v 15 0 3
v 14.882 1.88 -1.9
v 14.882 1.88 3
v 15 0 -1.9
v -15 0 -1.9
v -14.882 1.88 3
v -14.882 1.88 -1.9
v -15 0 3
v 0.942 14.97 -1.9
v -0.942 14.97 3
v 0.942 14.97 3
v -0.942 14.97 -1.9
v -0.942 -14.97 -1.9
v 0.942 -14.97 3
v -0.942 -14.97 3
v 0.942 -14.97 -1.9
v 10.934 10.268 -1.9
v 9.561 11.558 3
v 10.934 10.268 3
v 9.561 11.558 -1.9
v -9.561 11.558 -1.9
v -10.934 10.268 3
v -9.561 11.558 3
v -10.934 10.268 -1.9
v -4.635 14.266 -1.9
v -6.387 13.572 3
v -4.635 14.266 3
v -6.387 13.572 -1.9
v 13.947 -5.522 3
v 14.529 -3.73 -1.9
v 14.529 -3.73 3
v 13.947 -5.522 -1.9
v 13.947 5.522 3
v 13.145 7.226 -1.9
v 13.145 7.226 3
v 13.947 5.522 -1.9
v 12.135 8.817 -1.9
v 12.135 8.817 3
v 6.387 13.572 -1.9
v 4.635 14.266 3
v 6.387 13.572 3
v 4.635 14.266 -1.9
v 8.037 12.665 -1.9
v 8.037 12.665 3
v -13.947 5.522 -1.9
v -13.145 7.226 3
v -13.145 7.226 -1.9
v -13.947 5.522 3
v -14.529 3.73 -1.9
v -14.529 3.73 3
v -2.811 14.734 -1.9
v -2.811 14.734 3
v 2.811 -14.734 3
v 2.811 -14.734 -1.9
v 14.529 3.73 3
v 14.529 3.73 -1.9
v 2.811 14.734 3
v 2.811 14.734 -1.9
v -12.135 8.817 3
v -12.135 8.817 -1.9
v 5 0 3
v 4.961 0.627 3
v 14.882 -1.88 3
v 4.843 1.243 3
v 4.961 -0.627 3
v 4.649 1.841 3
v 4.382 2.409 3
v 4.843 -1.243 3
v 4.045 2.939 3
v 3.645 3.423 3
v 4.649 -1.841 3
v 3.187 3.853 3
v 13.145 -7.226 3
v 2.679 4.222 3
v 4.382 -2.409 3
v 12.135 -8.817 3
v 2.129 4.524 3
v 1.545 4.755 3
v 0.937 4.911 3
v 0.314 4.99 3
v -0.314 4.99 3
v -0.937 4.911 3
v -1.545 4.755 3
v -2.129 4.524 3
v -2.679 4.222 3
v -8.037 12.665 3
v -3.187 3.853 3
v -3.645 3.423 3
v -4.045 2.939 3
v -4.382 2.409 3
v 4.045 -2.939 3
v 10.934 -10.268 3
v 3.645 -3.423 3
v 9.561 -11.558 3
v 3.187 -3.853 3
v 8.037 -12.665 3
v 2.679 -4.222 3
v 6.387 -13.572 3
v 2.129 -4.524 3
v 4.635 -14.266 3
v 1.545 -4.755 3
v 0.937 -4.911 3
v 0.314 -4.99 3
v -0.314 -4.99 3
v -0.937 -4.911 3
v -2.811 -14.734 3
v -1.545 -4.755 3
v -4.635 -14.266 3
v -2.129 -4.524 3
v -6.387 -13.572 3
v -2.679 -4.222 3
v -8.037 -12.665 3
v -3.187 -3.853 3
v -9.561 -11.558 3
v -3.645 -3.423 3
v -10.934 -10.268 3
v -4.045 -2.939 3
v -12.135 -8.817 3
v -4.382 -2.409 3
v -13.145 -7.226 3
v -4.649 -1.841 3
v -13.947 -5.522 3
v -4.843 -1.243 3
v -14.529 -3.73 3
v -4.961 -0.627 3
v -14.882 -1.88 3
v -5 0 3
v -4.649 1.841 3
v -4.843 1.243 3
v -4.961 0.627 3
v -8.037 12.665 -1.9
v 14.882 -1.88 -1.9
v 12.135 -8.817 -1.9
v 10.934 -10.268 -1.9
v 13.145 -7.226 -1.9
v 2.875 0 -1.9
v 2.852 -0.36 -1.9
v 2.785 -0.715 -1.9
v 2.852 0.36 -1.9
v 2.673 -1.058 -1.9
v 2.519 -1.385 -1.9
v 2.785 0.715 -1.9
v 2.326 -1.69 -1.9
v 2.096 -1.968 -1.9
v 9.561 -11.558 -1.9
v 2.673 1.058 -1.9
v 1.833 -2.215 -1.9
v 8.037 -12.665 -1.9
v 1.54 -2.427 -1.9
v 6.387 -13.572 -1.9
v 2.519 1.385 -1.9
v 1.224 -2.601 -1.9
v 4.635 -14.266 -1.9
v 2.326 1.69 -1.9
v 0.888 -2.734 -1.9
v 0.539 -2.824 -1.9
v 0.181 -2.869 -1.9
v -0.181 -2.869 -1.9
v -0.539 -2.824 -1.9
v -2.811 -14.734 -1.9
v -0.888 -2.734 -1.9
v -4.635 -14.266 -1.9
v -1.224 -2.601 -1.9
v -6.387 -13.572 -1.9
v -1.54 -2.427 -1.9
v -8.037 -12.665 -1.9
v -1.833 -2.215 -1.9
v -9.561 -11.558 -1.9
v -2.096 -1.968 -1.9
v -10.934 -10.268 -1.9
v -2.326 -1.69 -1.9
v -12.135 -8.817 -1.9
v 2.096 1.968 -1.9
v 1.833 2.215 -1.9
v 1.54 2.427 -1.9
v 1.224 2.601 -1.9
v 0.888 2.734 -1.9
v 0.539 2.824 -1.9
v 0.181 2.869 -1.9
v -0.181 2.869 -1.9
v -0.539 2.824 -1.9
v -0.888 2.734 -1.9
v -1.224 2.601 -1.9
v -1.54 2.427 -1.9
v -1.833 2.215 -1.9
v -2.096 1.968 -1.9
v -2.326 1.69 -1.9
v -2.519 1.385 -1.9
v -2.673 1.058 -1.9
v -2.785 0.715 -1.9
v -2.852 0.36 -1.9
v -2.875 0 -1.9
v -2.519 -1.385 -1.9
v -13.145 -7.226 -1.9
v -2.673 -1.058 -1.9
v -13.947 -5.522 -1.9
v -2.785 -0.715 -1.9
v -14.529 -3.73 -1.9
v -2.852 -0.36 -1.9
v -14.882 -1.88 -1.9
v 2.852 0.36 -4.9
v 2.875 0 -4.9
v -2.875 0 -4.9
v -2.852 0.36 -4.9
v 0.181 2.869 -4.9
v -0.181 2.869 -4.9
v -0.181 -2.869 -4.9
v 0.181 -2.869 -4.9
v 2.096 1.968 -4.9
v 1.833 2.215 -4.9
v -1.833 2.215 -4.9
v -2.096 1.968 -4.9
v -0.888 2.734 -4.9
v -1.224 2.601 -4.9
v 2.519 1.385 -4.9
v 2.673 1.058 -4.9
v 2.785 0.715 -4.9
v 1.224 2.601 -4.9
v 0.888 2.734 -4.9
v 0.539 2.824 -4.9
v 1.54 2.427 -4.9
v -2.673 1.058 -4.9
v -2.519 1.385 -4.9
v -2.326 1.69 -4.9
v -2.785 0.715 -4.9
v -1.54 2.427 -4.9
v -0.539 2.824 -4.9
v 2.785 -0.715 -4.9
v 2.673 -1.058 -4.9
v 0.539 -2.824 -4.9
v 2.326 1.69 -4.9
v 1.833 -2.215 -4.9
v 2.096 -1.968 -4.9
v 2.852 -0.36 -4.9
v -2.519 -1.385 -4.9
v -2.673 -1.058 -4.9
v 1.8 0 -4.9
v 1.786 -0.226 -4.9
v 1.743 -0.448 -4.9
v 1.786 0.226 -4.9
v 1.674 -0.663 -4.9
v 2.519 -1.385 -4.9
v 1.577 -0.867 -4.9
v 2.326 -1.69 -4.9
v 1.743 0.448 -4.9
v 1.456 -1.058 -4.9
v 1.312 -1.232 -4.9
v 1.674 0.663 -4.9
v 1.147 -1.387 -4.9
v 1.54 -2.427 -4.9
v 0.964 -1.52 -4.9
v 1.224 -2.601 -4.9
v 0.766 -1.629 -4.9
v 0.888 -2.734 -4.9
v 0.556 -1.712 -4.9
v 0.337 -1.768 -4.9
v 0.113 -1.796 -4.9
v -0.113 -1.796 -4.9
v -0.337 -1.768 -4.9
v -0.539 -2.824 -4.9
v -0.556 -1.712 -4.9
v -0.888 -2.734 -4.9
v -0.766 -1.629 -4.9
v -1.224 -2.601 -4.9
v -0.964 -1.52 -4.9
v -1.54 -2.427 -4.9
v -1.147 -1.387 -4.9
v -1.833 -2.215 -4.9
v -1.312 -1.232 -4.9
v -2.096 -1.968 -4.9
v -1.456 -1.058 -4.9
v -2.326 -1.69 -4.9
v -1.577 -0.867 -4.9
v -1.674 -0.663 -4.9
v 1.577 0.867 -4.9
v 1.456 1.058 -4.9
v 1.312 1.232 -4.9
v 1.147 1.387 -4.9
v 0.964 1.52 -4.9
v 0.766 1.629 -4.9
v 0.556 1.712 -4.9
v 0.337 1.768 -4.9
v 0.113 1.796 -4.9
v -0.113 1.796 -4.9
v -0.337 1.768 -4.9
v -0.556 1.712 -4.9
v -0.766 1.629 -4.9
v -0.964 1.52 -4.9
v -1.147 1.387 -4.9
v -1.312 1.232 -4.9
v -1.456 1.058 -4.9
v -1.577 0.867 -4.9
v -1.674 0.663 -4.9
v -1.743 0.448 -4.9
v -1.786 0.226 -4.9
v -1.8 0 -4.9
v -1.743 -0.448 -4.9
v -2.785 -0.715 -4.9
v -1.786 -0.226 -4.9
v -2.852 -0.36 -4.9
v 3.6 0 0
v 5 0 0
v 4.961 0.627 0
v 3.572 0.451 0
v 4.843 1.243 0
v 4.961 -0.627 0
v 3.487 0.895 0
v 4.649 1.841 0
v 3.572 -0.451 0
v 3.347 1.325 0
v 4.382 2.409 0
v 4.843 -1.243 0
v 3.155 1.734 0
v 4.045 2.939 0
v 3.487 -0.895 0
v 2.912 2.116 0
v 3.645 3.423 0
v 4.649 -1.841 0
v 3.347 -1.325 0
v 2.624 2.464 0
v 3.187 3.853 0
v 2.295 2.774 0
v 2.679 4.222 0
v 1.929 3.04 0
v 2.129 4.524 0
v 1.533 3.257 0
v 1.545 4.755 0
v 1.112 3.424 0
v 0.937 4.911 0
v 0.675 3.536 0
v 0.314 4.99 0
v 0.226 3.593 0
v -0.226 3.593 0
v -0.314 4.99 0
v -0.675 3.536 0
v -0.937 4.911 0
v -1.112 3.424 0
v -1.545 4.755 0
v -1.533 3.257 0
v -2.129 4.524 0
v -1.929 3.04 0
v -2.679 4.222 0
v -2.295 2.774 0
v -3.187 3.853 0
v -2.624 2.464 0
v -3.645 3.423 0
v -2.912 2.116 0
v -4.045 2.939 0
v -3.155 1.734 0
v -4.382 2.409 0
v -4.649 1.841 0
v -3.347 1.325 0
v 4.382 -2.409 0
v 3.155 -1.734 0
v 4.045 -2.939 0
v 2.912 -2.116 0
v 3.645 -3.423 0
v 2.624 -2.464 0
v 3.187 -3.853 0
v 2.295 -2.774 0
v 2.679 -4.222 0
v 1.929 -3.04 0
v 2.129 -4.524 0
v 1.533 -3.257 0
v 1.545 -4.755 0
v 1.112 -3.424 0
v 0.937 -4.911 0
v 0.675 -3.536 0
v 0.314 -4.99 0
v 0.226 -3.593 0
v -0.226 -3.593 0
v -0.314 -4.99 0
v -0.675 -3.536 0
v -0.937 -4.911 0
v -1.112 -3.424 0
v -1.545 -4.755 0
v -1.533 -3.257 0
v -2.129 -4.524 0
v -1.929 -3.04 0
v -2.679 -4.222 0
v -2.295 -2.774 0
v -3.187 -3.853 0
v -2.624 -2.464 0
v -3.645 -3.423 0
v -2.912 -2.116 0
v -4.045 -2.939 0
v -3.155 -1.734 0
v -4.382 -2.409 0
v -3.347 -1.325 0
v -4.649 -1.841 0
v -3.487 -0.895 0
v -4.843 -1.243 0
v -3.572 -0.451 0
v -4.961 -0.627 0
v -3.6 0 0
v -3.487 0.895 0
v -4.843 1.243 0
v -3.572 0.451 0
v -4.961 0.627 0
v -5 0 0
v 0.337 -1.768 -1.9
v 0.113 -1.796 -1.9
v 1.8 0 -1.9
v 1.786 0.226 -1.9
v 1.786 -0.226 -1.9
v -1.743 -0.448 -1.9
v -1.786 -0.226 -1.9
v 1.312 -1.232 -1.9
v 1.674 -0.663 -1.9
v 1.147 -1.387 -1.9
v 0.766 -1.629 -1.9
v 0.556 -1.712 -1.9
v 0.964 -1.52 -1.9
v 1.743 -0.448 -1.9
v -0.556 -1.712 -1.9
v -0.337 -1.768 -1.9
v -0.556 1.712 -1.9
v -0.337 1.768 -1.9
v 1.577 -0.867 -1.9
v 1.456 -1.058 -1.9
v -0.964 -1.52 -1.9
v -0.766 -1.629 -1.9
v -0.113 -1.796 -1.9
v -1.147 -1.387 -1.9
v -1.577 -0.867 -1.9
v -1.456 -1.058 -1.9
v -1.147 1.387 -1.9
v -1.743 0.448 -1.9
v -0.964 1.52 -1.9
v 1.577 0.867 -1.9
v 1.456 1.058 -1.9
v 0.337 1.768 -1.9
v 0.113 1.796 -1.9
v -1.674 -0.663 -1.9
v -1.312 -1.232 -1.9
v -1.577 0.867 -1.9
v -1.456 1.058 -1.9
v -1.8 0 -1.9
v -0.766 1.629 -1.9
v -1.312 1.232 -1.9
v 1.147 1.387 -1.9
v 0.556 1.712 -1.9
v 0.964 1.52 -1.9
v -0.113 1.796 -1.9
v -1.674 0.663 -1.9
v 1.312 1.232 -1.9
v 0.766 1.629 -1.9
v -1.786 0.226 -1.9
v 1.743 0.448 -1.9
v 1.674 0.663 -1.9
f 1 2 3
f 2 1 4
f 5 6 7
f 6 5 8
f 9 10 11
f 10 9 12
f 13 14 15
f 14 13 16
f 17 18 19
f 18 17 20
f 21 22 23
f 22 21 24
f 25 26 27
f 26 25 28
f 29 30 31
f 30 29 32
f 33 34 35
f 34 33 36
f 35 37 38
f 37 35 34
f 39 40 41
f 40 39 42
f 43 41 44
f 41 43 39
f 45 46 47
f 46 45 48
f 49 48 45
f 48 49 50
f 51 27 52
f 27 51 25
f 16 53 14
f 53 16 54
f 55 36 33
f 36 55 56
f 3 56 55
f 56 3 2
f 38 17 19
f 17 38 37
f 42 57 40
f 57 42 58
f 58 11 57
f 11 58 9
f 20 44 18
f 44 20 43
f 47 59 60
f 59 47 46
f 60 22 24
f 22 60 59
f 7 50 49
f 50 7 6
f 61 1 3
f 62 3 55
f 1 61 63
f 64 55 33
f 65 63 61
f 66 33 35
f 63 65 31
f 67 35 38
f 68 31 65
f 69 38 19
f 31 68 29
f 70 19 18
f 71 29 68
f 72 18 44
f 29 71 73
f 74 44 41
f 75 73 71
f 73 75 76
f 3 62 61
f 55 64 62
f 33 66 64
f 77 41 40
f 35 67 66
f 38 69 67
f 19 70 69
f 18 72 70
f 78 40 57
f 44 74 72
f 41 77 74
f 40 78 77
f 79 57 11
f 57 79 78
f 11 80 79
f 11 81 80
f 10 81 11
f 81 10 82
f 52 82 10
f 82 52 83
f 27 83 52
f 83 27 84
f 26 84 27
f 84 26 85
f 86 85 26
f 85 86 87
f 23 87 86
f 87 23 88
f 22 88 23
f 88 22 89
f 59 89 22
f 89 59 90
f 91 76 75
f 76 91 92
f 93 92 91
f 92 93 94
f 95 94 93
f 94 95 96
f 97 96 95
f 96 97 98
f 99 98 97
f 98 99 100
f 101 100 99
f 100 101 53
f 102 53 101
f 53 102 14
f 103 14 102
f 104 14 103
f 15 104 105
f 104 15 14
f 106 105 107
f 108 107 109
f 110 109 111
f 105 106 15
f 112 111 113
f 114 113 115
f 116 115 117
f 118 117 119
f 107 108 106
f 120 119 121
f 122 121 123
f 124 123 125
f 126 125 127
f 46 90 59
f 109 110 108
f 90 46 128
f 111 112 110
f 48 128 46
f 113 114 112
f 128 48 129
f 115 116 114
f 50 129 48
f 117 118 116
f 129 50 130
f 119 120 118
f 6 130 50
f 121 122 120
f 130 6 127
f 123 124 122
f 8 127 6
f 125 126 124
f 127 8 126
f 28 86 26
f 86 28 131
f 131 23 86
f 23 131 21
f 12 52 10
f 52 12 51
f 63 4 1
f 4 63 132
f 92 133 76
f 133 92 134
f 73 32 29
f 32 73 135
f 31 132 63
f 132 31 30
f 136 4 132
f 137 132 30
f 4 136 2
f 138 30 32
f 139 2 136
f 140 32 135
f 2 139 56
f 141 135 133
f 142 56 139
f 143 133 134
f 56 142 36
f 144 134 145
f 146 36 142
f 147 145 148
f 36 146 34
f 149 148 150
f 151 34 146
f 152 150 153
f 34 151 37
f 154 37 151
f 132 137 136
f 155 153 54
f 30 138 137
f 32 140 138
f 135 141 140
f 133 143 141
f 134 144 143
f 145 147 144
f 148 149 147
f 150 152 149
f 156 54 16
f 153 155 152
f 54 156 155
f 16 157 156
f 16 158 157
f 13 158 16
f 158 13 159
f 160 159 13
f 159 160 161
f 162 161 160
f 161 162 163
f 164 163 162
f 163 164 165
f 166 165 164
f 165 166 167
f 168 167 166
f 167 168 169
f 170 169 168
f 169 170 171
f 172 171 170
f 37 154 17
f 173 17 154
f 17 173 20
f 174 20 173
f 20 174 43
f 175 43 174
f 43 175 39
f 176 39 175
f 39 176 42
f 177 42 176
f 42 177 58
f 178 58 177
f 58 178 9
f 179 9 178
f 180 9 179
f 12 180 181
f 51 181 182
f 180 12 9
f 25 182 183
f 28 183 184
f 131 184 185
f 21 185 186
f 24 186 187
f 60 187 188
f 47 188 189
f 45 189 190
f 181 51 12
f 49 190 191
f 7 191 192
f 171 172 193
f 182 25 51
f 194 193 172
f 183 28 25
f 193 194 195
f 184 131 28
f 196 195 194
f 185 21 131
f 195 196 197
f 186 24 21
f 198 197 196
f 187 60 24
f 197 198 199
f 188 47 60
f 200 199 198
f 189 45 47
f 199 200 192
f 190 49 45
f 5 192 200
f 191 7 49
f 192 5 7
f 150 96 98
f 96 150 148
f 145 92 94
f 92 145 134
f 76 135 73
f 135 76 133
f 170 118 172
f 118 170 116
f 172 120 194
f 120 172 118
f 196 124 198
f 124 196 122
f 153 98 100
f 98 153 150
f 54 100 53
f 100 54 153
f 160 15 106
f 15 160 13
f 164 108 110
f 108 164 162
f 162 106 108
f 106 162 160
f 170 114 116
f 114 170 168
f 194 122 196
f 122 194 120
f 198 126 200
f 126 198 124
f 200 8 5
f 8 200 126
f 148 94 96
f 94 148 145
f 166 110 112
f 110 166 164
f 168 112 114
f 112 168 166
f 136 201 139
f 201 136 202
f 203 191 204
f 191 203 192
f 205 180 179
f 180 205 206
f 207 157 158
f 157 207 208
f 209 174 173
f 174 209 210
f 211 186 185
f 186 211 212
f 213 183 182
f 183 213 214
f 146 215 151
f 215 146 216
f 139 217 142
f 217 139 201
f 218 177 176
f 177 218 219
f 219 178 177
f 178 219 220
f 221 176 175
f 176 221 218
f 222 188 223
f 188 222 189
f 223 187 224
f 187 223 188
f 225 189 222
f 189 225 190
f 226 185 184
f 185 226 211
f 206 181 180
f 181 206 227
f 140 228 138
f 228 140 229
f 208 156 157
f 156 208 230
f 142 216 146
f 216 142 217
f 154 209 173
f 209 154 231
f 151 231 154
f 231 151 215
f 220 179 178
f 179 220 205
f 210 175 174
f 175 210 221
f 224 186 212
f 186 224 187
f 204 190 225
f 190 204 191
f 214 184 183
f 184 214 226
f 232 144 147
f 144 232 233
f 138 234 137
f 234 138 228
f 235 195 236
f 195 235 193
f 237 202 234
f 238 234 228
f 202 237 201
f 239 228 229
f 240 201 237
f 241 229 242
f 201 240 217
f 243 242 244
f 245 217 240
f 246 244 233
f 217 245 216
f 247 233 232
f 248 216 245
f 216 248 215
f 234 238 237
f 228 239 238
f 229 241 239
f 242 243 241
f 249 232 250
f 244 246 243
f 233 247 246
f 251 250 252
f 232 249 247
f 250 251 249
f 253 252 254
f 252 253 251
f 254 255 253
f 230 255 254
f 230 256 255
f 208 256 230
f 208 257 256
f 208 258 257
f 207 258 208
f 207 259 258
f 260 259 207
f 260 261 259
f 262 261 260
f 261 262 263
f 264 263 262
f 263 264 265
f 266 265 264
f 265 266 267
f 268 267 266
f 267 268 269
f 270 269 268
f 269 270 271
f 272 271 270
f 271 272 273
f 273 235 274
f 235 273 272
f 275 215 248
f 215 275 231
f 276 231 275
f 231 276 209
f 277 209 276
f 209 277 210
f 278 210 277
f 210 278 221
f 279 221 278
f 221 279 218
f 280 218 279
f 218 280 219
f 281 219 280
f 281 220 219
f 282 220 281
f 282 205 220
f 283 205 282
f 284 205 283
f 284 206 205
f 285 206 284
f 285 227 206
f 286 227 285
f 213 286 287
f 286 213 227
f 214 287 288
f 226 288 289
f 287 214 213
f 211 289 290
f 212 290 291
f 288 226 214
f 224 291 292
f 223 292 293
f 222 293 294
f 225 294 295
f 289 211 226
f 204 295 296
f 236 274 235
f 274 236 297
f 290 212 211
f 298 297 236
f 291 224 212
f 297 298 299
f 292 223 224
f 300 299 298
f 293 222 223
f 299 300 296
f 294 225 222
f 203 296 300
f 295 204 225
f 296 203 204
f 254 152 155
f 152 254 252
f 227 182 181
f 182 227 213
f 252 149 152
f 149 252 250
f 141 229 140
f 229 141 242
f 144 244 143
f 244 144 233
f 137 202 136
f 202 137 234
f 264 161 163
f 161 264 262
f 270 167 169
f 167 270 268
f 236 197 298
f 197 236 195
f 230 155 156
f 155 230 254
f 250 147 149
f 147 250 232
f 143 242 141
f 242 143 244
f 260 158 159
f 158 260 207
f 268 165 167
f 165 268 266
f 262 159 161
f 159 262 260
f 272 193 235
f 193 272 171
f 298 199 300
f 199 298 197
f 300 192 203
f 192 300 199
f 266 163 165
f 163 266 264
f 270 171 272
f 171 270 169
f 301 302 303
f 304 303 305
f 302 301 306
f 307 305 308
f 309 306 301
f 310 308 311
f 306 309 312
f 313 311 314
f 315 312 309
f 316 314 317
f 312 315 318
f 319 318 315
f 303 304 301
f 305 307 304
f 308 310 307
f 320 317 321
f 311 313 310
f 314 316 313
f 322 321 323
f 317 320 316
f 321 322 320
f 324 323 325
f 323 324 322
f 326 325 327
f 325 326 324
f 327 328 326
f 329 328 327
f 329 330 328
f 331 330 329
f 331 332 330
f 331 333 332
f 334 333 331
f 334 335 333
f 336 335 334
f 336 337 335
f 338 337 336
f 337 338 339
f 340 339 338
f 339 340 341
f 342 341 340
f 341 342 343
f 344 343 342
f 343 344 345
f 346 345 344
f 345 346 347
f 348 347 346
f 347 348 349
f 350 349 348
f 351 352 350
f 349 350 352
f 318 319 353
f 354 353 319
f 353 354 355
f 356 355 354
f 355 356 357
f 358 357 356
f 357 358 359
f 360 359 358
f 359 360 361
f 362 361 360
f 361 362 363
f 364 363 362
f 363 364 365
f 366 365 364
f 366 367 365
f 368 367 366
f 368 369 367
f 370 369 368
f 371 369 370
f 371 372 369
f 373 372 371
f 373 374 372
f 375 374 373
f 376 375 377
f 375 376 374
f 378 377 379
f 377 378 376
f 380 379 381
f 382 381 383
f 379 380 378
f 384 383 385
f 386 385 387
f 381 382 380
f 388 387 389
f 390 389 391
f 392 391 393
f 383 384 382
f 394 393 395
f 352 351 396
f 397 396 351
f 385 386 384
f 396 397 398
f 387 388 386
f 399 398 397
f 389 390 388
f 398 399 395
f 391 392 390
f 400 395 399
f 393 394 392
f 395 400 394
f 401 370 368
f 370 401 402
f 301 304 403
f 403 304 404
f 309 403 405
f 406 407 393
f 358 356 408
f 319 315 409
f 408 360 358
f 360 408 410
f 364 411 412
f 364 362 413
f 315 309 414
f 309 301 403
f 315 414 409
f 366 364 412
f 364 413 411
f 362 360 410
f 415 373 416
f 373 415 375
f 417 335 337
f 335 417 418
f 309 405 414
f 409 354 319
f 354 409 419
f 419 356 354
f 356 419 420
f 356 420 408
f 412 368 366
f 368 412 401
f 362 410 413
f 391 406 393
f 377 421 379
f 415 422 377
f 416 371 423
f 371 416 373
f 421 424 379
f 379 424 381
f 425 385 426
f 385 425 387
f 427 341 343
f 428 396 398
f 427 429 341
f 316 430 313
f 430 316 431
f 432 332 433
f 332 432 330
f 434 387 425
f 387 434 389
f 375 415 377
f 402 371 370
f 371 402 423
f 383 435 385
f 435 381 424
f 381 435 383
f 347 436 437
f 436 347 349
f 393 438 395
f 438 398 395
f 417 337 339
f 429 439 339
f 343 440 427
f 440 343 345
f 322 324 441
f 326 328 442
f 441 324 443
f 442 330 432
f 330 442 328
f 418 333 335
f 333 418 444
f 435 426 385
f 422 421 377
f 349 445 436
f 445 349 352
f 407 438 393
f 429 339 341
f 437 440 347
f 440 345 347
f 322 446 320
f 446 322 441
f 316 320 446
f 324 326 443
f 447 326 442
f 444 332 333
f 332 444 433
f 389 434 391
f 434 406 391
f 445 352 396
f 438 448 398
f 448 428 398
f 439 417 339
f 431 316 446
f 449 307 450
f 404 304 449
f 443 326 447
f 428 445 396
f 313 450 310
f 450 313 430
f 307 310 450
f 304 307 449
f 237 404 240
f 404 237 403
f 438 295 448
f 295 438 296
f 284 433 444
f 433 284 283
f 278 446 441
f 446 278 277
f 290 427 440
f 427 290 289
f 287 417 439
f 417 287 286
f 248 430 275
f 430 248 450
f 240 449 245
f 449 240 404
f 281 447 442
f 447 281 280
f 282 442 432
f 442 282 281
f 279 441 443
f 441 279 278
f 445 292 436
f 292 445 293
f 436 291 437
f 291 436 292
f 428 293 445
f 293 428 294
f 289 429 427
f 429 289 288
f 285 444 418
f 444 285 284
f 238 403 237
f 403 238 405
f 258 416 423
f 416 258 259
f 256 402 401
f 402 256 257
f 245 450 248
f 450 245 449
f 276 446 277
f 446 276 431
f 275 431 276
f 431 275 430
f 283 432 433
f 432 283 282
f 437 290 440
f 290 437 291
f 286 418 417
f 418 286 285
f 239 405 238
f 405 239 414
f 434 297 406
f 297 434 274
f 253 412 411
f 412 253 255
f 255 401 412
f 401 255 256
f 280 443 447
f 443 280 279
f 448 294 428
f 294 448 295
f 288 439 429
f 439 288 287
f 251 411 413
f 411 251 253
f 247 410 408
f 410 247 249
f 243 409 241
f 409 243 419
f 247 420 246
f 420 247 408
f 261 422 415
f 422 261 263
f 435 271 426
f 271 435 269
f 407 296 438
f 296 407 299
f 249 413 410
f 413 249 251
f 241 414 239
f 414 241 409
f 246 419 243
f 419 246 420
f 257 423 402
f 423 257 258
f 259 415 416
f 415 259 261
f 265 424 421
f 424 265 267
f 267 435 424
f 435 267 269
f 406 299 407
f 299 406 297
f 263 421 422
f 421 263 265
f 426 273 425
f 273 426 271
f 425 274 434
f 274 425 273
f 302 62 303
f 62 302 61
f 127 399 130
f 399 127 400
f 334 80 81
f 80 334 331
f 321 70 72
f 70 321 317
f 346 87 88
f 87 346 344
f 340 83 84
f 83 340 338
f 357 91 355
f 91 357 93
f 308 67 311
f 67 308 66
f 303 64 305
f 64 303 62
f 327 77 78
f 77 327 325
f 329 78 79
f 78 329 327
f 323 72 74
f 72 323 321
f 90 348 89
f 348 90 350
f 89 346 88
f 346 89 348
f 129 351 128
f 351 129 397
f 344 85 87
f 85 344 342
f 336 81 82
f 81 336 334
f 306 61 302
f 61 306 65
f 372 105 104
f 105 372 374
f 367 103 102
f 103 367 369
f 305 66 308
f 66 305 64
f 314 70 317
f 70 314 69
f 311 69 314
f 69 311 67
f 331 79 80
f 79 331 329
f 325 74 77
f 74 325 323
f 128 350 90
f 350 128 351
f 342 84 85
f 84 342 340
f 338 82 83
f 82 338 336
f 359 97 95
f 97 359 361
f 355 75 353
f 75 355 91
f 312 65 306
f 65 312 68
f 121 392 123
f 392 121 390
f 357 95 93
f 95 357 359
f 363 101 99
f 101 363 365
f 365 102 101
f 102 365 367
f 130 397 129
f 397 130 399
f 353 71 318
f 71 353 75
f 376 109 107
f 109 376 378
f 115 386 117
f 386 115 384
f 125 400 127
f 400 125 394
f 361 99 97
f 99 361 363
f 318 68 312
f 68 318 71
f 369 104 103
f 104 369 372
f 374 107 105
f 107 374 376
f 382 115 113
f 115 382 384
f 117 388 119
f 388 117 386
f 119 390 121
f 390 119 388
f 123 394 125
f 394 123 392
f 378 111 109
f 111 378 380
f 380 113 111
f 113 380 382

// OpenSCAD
$fn = 50;


difference() {
	union() {
		translate(v = [0, 0, -1.9000000000]) {
			cylinder(h = 4.9000000000, r = 15.0000000000);
		}
		#translate(v = [0, 0, -4.9000000000]) {
			cylinder(h = 4.9000000000, r = 2.8750000000);
		}
	}
	union() {
		translate(v = [0, 0, 0]) {
			rotate(a = [0, 0, 0]) {
				difference() {
					union() {
						translate(v = [0, 0, -4.9000000000]) {
							cylinder(h = 4.9000000000, r = 1.5000000000);
						}
						translate(v = [0, 0, -1.9000000000]) {
							cylinder(h = 1.9000000000, r1 = 1.8000000000, r2 = 3.6000000000);
						}
						translate(v = [0, 0, -4.9000000000]) {
							cylinder(h = 4.9000000000, r = 1.8000000000);
						}
						translate(v = [0, 0, -4.9000000000]) {
							cylinder(h = 4.9000000000, r = 1.5000000000);
						}
					}
					union();
				}
			}
		}
		#cylinder(h = 3, r = 5.0000000000);
	}
}
